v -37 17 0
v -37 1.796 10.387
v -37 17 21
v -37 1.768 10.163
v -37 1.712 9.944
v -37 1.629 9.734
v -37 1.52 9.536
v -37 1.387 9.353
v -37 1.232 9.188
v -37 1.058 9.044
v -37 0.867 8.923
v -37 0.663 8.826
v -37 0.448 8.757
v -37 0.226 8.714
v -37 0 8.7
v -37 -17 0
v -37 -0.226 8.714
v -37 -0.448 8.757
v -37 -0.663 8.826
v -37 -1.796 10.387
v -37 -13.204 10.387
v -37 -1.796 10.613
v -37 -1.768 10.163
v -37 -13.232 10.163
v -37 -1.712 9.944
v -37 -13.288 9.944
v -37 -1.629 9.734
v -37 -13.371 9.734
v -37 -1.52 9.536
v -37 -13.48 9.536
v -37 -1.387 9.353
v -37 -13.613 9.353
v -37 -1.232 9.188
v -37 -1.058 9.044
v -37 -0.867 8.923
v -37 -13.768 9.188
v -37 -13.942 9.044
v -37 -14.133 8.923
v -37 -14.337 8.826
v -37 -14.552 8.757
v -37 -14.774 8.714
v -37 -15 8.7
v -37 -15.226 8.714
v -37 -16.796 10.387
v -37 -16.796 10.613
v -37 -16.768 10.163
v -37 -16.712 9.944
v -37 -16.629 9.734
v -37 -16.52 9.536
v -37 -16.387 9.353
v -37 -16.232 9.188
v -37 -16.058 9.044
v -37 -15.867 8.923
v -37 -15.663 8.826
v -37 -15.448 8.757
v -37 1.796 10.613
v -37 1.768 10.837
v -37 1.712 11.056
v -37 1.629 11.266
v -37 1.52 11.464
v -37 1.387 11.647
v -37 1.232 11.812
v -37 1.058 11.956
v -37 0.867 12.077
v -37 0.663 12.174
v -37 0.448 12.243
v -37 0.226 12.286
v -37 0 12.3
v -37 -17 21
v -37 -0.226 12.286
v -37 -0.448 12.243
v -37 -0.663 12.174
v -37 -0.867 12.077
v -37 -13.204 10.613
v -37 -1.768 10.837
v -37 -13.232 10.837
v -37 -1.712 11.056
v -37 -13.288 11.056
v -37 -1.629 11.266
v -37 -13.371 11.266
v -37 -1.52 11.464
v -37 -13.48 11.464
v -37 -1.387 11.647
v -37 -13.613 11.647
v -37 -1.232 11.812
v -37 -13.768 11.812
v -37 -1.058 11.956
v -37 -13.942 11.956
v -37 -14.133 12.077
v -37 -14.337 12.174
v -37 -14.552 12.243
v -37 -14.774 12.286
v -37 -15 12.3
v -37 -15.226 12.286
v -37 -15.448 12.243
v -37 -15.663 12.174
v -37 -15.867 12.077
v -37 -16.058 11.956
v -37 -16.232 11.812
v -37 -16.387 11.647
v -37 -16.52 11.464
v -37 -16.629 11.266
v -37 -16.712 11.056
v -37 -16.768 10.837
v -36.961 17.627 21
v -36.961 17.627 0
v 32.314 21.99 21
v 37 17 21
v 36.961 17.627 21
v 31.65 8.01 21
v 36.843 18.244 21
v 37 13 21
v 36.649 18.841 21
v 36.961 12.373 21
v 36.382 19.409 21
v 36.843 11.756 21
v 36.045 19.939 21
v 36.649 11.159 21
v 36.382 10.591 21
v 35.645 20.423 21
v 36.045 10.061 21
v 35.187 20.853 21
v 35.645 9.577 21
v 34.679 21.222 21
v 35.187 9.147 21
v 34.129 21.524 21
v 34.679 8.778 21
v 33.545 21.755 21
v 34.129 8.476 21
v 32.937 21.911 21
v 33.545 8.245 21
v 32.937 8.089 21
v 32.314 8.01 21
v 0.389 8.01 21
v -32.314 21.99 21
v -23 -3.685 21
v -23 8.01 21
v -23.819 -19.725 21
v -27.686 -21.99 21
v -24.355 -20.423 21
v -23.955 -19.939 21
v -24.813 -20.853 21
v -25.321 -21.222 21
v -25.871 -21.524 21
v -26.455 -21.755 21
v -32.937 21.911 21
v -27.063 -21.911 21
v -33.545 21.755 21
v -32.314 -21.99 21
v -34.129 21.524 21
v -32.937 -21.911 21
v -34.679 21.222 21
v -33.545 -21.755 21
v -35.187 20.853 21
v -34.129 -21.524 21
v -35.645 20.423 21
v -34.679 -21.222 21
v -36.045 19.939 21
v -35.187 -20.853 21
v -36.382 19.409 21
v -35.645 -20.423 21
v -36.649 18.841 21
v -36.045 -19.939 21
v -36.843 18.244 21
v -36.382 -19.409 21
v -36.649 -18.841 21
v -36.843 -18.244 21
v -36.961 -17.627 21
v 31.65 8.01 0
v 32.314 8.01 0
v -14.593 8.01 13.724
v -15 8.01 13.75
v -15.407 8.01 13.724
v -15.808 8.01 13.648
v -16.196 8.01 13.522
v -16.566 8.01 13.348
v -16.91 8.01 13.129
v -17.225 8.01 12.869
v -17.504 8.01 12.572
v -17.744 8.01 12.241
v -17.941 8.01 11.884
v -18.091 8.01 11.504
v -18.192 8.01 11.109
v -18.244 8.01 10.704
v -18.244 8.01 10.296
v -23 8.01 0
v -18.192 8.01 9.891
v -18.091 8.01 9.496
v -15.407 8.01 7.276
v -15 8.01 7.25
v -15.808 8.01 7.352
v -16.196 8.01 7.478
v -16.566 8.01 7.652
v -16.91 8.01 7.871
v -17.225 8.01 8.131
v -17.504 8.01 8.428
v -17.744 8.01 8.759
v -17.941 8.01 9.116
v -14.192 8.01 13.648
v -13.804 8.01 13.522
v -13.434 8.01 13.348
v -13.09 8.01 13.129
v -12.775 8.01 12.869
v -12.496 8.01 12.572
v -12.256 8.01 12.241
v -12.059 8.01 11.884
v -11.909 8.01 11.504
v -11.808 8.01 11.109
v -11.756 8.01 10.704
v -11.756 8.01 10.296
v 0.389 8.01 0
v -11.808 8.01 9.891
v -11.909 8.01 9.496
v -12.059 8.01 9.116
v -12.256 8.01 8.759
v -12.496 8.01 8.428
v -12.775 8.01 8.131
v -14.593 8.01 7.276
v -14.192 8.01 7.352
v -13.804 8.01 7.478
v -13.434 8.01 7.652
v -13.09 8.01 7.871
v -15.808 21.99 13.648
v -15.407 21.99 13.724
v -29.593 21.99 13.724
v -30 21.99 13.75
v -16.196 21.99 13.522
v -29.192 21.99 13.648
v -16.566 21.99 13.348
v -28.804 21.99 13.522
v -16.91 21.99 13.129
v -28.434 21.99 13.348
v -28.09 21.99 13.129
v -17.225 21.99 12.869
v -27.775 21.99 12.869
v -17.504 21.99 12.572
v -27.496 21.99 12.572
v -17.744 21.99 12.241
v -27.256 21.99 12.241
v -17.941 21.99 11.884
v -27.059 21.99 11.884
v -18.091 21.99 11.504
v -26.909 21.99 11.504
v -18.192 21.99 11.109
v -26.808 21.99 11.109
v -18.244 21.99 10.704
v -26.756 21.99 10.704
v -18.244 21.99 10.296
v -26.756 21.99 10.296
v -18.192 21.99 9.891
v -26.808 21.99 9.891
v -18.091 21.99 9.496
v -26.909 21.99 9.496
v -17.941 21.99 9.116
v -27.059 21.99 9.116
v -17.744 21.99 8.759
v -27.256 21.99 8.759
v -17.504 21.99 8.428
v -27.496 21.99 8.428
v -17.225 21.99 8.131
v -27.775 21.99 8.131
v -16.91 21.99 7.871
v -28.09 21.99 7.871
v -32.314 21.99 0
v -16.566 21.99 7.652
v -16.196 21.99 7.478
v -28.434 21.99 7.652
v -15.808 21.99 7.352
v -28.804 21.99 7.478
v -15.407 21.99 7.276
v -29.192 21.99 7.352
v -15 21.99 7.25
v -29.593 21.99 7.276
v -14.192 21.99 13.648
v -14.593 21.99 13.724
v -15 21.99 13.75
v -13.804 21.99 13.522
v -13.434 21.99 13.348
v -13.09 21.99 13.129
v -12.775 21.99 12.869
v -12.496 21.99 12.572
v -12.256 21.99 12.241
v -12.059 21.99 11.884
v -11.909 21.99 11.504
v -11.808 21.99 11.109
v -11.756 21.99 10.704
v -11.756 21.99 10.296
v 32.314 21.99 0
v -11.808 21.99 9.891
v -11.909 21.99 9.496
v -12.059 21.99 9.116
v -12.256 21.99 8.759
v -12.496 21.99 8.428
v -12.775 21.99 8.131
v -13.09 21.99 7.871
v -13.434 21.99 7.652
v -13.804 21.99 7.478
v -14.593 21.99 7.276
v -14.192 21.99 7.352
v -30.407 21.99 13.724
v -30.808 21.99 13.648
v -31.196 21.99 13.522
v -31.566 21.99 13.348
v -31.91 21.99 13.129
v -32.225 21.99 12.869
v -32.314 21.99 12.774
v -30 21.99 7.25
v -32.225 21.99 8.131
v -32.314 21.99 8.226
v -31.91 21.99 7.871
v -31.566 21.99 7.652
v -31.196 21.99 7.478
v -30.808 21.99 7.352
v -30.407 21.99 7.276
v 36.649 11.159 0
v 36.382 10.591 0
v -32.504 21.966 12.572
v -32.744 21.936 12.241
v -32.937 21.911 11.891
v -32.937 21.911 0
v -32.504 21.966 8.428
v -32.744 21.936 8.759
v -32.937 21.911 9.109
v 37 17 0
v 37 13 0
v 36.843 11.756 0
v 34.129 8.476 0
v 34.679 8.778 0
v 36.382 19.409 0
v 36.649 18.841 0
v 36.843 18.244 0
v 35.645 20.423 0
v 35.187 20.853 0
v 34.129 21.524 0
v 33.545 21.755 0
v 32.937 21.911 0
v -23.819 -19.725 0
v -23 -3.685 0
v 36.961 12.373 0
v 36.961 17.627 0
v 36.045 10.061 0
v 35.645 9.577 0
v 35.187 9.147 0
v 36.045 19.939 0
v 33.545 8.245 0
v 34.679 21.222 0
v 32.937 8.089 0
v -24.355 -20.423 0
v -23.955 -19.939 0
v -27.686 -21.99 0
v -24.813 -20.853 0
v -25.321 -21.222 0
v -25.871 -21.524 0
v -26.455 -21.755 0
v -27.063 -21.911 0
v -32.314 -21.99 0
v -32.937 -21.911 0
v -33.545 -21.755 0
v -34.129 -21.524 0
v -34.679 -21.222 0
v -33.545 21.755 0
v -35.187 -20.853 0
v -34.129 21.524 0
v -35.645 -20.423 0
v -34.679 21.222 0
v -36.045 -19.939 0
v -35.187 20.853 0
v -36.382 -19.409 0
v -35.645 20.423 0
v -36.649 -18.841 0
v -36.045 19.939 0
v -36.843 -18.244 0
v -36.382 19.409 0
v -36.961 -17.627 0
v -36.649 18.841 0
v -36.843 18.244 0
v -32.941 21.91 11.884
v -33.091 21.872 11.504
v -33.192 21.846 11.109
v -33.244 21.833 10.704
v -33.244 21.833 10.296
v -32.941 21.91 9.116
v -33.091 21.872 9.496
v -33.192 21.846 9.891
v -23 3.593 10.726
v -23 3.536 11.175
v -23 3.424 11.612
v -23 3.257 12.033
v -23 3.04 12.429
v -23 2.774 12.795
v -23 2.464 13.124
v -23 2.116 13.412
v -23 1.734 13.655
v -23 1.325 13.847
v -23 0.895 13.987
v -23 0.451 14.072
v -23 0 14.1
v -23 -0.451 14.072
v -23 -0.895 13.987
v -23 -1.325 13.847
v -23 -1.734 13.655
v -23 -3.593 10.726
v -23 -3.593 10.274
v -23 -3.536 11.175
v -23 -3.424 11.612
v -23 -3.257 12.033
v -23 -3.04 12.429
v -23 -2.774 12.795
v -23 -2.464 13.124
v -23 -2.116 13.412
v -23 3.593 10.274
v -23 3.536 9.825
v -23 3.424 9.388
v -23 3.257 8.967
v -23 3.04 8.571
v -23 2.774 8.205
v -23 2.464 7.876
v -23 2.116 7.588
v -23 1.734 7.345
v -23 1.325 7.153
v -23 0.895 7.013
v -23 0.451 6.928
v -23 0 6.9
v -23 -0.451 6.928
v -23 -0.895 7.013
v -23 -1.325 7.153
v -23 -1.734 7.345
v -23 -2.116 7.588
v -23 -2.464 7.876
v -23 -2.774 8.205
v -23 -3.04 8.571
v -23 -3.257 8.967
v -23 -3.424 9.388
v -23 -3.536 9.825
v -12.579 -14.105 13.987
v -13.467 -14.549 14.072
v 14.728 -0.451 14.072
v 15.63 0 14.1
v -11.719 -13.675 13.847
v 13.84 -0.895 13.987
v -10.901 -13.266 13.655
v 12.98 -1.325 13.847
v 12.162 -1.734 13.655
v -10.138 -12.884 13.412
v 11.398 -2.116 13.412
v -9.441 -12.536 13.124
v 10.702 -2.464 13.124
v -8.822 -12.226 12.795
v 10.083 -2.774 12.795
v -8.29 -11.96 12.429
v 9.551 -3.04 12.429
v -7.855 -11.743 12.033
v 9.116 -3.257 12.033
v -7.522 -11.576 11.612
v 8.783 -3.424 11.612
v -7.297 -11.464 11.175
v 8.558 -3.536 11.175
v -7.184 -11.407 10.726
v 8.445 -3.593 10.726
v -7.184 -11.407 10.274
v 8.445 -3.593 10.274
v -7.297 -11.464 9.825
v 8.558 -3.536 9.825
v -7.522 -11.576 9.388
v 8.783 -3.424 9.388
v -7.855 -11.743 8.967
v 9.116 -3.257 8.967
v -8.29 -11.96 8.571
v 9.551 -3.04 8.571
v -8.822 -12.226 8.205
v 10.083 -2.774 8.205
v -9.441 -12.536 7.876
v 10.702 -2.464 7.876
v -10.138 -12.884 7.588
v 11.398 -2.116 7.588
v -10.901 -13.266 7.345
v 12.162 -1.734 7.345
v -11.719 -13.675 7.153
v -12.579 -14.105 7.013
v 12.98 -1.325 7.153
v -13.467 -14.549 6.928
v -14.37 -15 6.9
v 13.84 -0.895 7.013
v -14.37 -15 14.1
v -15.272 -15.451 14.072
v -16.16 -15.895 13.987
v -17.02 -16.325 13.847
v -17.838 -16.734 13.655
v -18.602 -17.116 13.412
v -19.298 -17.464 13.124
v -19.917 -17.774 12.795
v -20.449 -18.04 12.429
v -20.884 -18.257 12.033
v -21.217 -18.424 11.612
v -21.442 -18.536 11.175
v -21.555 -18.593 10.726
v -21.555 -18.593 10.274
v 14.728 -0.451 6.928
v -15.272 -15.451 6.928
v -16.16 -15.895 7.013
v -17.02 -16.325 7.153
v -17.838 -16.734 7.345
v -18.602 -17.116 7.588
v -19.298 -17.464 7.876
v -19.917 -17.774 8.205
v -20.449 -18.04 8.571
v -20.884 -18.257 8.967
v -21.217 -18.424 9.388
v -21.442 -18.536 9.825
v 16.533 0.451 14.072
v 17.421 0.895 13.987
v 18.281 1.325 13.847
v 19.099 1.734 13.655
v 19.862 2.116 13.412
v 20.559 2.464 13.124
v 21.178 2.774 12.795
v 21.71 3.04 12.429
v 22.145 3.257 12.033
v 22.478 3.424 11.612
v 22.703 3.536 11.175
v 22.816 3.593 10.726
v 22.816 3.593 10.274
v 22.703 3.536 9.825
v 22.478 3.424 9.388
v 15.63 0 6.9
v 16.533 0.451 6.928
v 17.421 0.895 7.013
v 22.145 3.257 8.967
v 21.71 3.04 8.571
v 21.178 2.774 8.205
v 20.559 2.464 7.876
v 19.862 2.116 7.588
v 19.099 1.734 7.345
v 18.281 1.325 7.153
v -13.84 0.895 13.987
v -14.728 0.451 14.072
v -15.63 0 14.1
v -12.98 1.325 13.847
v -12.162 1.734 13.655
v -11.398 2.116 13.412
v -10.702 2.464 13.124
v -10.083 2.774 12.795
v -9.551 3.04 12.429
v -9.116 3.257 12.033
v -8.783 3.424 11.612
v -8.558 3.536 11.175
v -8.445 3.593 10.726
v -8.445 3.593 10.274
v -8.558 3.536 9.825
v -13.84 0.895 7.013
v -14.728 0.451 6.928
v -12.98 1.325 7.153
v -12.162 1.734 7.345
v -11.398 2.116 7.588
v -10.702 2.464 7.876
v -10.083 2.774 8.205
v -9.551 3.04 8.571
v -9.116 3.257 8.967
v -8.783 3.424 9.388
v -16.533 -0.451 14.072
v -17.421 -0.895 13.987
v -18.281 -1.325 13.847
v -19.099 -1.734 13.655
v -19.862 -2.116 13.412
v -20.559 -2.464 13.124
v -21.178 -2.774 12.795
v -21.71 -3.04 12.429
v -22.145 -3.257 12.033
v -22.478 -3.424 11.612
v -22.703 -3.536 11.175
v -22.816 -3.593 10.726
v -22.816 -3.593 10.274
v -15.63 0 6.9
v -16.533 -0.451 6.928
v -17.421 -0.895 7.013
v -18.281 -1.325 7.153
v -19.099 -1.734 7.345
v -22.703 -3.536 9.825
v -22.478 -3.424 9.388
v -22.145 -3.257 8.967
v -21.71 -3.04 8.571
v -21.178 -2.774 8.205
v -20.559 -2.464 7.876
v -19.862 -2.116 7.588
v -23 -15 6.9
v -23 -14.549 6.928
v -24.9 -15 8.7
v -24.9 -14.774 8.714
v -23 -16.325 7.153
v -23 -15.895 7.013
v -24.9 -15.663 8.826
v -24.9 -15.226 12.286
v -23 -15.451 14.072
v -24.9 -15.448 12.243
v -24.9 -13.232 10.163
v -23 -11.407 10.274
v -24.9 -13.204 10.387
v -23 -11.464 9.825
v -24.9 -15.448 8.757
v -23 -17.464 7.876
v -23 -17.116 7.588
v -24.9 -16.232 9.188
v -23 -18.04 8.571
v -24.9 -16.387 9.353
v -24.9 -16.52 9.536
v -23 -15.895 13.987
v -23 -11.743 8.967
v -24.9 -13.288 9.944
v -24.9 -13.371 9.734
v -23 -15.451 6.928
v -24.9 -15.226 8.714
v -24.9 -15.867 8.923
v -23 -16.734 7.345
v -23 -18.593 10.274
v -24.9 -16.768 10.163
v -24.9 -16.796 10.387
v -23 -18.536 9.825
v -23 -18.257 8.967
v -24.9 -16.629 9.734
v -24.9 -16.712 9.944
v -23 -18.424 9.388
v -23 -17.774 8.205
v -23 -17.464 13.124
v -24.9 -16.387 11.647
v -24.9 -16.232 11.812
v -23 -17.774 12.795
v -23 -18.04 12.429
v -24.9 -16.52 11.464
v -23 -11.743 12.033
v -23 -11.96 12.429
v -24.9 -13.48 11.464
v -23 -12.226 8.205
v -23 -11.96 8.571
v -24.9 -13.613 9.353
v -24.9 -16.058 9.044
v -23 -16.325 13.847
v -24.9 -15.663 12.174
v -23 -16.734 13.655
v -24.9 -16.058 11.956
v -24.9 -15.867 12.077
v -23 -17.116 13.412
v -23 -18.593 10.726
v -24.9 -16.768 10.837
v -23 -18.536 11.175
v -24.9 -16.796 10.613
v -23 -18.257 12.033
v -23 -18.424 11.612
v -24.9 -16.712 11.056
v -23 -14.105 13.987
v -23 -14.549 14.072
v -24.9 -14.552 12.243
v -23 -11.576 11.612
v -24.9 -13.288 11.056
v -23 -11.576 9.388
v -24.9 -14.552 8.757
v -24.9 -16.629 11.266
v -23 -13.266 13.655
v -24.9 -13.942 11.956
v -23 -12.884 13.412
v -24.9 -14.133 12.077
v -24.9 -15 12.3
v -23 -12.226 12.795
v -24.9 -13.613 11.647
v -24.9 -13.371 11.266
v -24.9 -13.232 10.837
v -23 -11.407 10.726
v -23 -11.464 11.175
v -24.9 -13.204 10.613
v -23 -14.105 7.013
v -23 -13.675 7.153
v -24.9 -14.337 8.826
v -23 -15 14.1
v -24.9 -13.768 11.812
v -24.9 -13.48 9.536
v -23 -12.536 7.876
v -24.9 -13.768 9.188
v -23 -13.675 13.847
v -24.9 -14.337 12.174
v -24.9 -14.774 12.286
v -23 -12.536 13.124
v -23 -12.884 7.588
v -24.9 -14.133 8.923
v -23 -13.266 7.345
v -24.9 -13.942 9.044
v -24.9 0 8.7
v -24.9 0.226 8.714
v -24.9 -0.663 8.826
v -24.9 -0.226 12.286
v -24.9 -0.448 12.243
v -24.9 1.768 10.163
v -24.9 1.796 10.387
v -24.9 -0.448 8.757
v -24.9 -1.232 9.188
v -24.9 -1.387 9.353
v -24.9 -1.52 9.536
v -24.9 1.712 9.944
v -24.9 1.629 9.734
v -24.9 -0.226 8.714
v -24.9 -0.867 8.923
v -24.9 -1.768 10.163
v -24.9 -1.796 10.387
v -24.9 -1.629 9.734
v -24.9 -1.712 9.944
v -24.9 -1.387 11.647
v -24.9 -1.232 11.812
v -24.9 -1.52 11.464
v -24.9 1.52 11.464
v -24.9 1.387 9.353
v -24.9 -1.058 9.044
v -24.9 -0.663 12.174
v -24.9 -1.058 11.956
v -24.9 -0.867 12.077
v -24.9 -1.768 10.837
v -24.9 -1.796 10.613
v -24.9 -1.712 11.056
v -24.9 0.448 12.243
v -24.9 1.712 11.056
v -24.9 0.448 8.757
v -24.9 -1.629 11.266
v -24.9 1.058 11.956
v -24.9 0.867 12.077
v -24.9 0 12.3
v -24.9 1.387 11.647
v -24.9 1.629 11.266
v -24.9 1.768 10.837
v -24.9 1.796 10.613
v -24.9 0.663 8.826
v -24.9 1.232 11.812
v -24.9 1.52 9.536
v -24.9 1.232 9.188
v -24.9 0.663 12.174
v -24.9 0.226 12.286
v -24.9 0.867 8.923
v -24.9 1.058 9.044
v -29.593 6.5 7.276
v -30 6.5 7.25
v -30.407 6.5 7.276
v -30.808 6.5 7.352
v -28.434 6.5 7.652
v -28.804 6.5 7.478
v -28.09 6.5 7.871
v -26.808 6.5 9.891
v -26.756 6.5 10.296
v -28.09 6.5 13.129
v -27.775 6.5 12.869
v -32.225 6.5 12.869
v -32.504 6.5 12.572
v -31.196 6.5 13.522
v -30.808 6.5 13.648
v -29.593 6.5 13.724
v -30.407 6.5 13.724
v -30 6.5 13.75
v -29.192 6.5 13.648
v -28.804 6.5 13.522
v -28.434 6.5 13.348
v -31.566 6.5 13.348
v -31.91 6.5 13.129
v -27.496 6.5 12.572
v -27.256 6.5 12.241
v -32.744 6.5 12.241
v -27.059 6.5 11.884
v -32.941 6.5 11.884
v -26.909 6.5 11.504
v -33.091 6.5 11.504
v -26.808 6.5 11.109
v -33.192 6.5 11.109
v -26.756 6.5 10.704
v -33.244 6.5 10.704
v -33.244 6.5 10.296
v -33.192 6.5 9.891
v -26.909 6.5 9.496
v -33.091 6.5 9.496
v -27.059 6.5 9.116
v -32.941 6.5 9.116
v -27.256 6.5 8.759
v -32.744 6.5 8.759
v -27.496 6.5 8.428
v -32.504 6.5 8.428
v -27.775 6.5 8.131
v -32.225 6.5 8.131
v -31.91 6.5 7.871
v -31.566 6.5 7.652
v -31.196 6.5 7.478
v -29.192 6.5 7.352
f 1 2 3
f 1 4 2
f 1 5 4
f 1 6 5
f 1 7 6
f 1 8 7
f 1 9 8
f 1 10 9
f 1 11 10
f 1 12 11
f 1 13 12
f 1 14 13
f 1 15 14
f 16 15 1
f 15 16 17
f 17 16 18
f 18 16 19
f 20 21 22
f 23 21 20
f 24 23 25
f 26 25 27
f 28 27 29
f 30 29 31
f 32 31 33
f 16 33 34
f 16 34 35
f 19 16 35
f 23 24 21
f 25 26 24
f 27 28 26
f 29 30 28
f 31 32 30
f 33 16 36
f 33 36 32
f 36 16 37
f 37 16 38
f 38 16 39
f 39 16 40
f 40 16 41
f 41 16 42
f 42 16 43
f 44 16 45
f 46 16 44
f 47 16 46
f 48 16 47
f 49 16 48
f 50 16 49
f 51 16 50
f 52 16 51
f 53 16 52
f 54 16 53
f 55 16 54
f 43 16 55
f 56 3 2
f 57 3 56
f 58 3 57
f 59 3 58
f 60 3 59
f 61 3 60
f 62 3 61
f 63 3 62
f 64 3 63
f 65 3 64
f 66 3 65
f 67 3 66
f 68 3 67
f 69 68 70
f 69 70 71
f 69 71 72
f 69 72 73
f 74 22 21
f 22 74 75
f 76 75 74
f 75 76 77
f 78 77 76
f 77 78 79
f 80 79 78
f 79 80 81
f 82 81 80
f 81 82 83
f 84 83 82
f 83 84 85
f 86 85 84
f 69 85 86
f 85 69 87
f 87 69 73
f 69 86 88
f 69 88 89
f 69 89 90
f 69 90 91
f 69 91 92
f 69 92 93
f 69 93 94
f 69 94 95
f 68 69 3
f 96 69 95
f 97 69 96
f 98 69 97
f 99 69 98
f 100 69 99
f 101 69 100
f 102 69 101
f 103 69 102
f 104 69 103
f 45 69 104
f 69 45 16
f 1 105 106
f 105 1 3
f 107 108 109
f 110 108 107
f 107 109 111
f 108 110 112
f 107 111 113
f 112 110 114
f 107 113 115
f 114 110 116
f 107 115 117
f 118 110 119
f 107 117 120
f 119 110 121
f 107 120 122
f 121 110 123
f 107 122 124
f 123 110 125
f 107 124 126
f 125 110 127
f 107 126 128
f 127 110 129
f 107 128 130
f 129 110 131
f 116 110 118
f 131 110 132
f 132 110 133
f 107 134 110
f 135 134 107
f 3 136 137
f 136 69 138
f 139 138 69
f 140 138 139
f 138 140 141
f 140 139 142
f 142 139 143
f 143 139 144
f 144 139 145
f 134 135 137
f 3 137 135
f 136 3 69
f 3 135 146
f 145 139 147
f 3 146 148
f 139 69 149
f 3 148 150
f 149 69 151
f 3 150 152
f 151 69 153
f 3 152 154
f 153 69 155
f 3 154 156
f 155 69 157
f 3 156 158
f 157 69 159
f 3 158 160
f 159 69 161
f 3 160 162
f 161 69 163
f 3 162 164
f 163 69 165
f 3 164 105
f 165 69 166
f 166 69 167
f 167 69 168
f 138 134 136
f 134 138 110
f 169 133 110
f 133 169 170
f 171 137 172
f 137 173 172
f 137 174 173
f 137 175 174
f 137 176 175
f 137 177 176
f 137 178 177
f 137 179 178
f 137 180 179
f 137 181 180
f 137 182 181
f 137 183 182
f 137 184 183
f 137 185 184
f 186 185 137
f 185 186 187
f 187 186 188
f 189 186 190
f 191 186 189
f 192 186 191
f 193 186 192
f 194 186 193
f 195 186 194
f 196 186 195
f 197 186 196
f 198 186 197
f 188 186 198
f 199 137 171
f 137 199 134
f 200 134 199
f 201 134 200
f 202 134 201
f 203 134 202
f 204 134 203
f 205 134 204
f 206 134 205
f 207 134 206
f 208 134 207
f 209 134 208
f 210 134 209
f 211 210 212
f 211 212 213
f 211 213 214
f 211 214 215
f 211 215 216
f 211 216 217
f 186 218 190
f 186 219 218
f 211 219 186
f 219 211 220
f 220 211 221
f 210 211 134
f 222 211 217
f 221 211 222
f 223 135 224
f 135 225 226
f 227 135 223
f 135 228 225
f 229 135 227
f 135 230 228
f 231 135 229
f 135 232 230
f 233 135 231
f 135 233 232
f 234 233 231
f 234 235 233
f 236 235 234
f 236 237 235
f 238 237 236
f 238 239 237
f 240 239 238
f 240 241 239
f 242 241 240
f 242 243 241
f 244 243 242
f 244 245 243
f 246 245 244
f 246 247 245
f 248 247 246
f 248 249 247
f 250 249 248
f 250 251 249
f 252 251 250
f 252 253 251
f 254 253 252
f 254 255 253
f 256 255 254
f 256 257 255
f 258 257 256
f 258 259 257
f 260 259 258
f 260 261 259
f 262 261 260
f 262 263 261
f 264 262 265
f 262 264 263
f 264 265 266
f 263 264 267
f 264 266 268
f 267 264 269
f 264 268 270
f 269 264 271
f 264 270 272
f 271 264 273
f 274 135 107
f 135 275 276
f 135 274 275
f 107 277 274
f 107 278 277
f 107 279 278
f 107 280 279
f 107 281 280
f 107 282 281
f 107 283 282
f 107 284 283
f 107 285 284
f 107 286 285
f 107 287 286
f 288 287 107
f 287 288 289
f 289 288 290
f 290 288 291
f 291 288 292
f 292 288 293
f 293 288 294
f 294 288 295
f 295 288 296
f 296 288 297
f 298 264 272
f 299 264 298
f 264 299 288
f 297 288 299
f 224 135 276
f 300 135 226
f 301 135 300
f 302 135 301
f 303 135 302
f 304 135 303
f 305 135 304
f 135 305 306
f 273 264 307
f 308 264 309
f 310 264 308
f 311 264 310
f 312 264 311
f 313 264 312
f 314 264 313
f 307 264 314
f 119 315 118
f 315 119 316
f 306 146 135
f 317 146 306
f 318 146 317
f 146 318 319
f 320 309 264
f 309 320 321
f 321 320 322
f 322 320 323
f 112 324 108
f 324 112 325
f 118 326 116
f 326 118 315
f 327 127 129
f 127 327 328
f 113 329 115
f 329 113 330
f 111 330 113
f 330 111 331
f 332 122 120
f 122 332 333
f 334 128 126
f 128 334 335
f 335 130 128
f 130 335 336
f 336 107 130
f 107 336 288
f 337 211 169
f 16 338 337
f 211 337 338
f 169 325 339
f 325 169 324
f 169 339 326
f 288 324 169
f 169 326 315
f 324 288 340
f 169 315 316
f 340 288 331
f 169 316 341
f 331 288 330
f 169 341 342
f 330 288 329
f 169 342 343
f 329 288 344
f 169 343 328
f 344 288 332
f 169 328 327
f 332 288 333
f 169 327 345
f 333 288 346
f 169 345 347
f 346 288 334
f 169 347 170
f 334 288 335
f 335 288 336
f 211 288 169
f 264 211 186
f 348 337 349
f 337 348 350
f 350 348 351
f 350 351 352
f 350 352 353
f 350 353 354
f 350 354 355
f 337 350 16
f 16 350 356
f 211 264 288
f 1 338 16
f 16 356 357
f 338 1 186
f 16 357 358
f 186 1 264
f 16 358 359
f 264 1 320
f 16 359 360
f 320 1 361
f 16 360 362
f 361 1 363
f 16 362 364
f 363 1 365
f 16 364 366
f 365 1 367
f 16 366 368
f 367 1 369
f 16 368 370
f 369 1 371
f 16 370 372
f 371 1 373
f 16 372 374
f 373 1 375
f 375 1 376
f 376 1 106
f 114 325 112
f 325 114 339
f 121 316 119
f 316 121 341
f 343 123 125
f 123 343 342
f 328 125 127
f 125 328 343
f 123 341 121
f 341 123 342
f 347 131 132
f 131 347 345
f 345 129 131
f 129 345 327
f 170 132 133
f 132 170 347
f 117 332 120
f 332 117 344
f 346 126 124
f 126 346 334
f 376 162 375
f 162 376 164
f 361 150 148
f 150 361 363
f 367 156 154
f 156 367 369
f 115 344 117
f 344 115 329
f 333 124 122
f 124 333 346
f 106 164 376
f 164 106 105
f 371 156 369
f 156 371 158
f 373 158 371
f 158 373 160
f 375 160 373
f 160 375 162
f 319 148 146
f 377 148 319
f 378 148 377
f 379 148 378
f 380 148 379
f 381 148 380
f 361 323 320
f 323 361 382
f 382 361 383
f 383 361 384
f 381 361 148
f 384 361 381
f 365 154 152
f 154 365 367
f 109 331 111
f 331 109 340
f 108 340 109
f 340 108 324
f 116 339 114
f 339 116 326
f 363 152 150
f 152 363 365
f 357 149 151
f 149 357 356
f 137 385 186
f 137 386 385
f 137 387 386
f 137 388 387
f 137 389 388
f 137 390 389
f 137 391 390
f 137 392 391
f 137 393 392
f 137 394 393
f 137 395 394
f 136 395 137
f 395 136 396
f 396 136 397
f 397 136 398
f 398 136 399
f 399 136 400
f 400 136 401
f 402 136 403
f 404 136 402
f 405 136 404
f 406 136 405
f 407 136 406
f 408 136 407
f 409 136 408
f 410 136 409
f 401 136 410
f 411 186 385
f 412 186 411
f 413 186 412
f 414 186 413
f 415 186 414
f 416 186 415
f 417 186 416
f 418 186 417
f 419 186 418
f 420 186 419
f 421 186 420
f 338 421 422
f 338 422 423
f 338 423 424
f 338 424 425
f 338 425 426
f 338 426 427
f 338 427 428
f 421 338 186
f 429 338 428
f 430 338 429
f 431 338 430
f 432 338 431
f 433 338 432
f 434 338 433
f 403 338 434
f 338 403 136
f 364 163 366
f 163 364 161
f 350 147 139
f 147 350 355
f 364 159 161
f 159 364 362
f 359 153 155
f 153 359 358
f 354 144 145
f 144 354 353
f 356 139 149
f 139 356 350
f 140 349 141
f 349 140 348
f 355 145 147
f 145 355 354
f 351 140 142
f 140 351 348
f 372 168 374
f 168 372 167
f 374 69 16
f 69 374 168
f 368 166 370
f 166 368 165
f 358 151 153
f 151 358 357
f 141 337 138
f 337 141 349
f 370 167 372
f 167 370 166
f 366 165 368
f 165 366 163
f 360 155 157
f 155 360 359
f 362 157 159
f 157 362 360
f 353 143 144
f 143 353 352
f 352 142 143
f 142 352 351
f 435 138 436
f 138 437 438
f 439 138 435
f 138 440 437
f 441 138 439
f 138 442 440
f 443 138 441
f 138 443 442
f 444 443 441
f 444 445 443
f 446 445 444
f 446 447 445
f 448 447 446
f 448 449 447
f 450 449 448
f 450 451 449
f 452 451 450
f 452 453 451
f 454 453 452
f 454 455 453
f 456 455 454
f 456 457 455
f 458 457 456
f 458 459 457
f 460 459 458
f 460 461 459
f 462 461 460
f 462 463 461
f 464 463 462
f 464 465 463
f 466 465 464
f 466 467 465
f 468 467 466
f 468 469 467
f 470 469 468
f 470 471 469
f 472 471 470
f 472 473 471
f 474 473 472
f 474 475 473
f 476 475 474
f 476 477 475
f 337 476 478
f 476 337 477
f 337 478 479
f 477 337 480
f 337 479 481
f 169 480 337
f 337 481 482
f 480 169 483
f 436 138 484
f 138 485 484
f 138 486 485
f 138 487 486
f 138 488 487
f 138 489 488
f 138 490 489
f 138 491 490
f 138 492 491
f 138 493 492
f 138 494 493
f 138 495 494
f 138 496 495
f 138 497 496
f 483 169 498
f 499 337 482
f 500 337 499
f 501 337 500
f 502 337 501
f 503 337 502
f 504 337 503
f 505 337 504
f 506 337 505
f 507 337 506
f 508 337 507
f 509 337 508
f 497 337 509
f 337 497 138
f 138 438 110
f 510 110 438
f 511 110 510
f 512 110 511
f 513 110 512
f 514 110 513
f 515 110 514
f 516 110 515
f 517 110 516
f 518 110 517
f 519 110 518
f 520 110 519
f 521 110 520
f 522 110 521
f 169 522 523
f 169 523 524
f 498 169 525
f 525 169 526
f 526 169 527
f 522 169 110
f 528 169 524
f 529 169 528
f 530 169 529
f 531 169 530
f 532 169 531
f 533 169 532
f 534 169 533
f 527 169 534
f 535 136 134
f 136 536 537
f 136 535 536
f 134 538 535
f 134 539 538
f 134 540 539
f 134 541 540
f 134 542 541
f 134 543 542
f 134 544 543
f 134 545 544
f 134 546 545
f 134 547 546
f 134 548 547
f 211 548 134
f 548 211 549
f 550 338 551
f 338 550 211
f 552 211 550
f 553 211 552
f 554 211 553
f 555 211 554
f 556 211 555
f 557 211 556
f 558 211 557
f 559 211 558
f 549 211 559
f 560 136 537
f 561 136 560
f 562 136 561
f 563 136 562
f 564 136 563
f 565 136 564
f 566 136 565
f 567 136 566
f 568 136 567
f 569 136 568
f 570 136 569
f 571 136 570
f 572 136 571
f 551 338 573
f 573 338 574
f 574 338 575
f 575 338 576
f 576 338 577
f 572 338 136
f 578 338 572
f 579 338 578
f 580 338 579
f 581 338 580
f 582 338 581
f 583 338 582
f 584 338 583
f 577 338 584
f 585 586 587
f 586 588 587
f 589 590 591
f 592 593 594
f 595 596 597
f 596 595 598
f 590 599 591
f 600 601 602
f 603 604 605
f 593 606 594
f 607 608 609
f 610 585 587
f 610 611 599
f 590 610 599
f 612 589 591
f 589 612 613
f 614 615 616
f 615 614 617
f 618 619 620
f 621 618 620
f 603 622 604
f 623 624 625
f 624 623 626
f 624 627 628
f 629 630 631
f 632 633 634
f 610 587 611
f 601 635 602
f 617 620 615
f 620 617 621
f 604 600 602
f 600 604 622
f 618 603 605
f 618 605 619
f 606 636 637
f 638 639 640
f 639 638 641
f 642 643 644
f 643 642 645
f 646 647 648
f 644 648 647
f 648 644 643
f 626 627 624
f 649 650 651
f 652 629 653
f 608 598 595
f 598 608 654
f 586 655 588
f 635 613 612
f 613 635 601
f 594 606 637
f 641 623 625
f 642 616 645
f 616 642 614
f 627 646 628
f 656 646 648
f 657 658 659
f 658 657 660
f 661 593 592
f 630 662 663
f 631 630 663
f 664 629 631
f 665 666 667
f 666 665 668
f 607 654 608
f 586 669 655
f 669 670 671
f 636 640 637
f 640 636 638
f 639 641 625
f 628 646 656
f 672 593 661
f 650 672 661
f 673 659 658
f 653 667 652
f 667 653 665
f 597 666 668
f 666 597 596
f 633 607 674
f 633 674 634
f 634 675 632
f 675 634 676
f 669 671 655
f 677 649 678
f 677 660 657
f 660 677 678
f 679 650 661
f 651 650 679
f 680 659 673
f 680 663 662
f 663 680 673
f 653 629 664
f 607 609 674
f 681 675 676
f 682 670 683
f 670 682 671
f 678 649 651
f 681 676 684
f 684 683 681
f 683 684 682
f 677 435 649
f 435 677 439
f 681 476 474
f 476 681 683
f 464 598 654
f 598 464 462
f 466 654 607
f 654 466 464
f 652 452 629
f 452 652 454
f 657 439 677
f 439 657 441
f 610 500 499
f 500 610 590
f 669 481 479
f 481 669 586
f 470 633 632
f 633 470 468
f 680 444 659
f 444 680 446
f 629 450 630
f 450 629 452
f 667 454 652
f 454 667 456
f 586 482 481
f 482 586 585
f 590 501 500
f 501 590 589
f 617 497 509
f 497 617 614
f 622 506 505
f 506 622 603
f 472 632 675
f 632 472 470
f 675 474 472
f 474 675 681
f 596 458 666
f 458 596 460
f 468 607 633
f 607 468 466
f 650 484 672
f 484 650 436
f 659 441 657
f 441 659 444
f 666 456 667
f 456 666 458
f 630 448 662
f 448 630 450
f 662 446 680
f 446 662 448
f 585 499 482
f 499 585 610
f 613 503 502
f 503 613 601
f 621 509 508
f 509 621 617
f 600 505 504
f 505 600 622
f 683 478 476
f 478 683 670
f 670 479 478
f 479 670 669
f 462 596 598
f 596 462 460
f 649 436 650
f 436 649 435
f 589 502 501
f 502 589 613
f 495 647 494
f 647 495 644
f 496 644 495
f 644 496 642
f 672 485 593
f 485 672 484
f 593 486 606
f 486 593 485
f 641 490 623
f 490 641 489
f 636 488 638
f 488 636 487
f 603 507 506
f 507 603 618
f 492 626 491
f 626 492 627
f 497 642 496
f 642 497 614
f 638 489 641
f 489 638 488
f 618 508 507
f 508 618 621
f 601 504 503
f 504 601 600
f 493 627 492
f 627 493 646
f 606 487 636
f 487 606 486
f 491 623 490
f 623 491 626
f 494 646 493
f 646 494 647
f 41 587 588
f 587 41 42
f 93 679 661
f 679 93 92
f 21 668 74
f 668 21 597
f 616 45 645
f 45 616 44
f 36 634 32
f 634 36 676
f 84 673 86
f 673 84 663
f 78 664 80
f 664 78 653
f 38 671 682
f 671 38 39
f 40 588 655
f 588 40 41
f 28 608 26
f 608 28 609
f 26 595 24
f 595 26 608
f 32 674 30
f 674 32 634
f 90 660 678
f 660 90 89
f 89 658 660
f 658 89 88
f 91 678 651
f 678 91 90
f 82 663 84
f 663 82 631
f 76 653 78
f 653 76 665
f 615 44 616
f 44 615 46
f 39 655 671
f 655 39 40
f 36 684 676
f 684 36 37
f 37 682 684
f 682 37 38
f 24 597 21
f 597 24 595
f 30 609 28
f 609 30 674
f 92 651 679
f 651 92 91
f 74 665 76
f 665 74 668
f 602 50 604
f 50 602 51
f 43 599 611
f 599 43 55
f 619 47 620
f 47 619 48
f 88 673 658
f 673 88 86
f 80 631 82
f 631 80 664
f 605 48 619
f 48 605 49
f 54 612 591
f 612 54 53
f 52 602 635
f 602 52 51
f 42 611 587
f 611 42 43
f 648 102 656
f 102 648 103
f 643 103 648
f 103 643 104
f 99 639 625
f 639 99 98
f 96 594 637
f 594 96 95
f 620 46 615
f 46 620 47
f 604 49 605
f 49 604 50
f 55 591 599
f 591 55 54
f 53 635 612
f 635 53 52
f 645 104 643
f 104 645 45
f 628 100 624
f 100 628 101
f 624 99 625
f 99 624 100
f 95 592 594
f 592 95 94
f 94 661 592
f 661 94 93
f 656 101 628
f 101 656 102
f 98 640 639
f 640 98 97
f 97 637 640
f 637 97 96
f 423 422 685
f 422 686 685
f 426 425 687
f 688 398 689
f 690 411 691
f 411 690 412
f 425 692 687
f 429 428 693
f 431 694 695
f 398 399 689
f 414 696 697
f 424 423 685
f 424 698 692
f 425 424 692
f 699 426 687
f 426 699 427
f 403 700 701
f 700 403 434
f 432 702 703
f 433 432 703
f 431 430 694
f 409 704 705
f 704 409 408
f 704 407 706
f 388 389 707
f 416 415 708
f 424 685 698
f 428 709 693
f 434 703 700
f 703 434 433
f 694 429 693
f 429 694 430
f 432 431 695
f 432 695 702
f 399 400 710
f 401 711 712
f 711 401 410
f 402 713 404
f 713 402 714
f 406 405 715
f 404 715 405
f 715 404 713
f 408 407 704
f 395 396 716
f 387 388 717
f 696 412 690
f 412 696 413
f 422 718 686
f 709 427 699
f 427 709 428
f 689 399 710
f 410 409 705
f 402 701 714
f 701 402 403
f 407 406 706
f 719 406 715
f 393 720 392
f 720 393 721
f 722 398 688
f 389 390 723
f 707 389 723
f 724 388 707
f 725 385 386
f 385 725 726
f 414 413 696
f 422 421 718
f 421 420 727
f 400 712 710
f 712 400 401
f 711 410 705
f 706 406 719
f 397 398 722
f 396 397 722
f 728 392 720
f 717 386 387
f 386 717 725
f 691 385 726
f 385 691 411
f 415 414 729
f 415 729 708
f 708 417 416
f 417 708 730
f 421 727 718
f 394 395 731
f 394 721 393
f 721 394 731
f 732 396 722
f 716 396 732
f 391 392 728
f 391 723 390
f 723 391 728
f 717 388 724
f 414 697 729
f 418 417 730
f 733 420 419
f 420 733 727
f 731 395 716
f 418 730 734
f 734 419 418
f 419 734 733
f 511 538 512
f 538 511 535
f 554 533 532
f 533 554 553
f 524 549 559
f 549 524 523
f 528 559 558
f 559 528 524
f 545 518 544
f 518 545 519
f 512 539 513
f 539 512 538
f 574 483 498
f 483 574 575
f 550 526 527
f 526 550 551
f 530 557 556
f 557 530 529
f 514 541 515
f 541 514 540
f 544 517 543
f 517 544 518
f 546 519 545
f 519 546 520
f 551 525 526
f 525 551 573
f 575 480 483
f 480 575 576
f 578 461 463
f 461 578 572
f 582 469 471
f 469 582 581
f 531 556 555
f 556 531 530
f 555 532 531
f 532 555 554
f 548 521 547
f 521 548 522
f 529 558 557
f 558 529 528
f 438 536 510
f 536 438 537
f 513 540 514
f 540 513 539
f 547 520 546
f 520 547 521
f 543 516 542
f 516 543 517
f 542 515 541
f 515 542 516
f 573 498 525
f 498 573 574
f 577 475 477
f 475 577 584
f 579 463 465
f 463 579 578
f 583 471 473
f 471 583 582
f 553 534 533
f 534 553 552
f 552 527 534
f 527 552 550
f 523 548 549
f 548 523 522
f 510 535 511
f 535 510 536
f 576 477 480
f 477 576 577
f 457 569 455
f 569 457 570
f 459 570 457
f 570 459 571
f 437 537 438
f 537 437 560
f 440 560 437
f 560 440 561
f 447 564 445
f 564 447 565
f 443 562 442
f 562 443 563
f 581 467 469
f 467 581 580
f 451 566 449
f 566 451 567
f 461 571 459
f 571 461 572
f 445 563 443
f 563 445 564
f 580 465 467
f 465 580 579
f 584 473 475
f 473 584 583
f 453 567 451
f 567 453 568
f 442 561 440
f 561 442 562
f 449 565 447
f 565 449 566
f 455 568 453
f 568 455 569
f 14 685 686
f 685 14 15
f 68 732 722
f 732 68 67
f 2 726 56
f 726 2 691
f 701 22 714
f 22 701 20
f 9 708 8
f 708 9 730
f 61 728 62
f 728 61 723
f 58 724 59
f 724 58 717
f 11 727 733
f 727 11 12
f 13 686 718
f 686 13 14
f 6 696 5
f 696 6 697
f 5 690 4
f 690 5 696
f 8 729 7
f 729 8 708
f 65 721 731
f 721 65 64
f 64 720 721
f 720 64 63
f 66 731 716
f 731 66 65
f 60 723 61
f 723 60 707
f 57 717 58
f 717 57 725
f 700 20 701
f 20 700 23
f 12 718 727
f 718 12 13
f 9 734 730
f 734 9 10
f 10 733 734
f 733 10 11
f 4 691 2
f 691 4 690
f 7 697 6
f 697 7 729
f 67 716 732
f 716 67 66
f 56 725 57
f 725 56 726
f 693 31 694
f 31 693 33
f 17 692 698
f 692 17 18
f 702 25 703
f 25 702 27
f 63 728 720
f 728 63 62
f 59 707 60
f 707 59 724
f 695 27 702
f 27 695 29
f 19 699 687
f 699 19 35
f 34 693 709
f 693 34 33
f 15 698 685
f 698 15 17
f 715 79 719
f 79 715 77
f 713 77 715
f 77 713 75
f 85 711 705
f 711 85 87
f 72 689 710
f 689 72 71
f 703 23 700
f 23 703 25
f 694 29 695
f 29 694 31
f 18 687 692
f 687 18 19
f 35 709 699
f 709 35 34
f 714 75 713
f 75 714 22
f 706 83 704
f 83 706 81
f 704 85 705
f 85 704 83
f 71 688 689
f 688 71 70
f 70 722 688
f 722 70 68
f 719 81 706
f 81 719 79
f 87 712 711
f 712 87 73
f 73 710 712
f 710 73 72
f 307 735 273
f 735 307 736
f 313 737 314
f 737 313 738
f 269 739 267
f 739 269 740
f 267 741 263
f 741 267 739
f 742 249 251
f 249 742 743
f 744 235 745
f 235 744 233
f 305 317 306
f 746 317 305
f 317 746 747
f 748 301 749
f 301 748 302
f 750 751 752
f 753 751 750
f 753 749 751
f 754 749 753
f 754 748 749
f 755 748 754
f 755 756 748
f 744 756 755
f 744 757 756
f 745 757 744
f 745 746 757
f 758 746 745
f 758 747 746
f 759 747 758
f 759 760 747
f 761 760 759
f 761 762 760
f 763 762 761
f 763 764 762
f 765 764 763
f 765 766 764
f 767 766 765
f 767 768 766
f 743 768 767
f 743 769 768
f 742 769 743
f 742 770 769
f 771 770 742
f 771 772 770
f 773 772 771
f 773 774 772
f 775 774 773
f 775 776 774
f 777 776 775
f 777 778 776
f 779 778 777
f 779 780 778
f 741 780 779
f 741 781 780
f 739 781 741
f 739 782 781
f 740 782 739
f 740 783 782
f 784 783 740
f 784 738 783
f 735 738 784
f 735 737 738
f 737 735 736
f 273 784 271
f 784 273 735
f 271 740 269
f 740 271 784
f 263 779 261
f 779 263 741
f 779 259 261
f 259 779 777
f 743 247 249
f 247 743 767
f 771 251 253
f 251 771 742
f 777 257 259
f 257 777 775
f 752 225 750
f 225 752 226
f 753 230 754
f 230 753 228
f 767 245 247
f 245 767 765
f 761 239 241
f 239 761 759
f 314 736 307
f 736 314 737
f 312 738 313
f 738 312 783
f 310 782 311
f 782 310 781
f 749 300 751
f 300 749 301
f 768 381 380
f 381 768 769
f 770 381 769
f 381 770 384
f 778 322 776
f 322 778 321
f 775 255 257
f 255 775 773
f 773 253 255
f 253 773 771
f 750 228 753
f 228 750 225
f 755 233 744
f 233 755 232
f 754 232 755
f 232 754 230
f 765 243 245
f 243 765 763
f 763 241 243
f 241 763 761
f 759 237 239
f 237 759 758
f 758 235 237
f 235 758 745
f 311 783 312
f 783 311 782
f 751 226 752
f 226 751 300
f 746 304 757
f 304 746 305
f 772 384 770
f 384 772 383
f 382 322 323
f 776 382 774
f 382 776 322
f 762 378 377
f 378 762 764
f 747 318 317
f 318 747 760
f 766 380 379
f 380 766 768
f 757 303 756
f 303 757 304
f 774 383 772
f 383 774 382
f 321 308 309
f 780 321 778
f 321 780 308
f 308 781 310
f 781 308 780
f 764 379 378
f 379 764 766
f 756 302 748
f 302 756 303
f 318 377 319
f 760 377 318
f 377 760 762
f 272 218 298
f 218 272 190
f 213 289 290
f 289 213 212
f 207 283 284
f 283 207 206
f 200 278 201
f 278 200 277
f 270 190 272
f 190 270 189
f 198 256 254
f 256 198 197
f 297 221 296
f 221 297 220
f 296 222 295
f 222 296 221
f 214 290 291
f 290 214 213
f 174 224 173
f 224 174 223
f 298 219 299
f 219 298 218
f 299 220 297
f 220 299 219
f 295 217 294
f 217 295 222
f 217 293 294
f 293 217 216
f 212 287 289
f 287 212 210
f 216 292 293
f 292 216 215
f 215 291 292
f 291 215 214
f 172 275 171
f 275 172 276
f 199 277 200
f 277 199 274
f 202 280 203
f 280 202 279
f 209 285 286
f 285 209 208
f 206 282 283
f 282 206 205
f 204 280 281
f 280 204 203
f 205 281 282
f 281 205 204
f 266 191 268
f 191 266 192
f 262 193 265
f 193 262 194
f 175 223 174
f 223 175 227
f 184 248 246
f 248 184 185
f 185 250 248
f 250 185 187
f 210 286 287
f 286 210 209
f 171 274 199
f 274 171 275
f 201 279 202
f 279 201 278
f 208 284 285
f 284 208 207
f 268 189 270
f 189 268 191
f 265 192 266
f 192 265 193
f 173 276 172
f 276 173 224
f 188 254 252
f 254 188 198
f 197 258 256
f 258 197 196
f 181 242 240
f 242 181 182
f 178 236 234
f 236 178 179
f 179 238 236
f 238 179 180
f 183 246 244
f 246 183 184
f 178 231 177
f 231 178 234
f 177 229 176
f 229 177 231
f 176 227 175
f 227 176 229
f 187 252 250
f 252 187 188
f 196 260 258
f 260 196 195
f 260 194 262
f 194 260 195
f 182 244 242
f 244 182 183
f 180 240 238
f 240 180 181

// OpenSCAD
$fn = 50;


difference() {
	union() {
		translate(v = [0, 15.0000000000, 0]) {
			hull() {
				translate(v = [-32.0000000000, 2.0000000000, 0]) {
					cylinder(h = 21, r = 5);
				}
				translate(v = [32.0000000000, 2.0000000000, 0]) {
					cylinder(h = 21, r = 5);
				}
				translate(v = [-32.0000000000, -2.0000000000, 0]) {
					cylinder(h = 21, r = 5);
				}
				translate(v = [32.0000000000, -2.0000000000, 0]) {
					cylinder(h = 21, r = 5);
				}
			}
		}
		translate(v = [-30.0000000000, 0, 0]) {
			hull() {
				translate(v = [-2.0000000000, 17.0000000000, 0]) {
					cylinder(h = 21, r = 5);
				}
				translate(v = [2.0000000000, 17.0000000000, 0]) {
					cylinder(h = 21, r = 5);
				}
				translate(v = [-2.0000000000, -17.0000000000, 0]) {
					cylinder(h = 21, r = 5);
				}
				translate(v = [2.0000000000, -17.0000000000, 0]) {
					cylinder(h = 21, r = 5);
				}
			}
		}
		rotate(a = [0, 0, 26.5650511771]) {
			hull() {
				translate(v = [-33.0410196625, 2.0000000000, 0]) {
					cylinder(h = 21, r = 5);
				}
				translate(v = [33.0410196625, 2.0000000000, 0]) {
					cylinder(h = 21, r = 5);
				}
				translate(v = [-33.0410196625, -2.0000000000, 0]) {
					cylinder(h = 21, r = 5);
				}
				translate(v = [33.0410196625, -2.0000000000, 0]) {
					cylinder(h = 21, r = 5);
				}
			}
		}
	}
	union() {
		translate(v = [-23.0000000000, -15.0000000000, 10.5000000000]) {
			rotate(a = [0, 90, 0]) {
				difference() {
					union() {
						#translate(v = [0, 0, -14.0000000000]) {
							cylinder(h = 14, r = 1.5000000000);
						}
						#translate(v = [0, 0, -1.9000000000]) {
							cylinder(h = 1.9000000000, r1 = 1.8000000000, r2 = 3.6000000000);
						}
						#cylinder(h = 250, r = 3.6000000000);
						#translate(v = [0, 0, -14.0000000000]) {
							cylinder(h = 14, r = 1.8000000000);
						}
						#translate(v = [0, 0, -14.0000000000]) {
							cylinder(h = 14, r = 1.5000000000);
						}
					}
					union();
				}
			}
		}
		translate(v = [-23.0000000000, 0.0000000000, 10.5000000000]) {
			rotate(a = [0, 90, 0]) {
				difference() {
					union() {
						#translate(v = [0, 0, -14.0000000000]) {
							cylinder(h = 14, r = 1.5000000000);
						}
						#translate(v = [0, 0, -1.9000000000]) {
							cylinder(h = 1.9000000000, r1 = 1.8000000000, r2 = 3.6000000000);
						}
						#cylinder(h = 250, r = 3.6000000000);
						#translate(v = [0, 0, -14.0000000000]) {
							cylinder(h = 14, r = 1.8000000000);
						}
						#translate(v = [0, 0, -14.0000000000]) {
							cylinder(h = 14, r = 1.5000000000);
						}
					}
					union();
				}
			}
		}
		#translate(v = [-45.0000000000, 22.5000000000, 10.5000000000]) {
			rotate(a = [0, 90, -90]) {
				cylinder(h = 20, r = 3.2500000000);
			}
		}
		#translate(v = [-30.0000000000, 22.5000000000, 10.5000000000]) {
			rotate(a = [0, 90, -90]) {
				cylinder(h = 16, r = 3.2500000000);
			}
		}
		#translate(v = [-60.0000000000, 22.5000000000, 10.5000000000]) {
			rotate(a = [0, 90, -90]) {
				cylinder(h = 16, r = 3.2500000000);
			}
		}
		#translate(v = [-75.0000000000, 22.5000000000, 10.5000000000]) {
			rotate(a = [0, 90, -90]) {
				cylinder(h = 16, r = 3.2500000000);
			}
		}
		#translate(v = [-15.0000000000, 22.5000000000, 10.5000000000]) {
			rotate(a = [0, 90, -90]) {
				cylinder(h = 20, r = 3.2500000000);
			}
		}
	}
}
